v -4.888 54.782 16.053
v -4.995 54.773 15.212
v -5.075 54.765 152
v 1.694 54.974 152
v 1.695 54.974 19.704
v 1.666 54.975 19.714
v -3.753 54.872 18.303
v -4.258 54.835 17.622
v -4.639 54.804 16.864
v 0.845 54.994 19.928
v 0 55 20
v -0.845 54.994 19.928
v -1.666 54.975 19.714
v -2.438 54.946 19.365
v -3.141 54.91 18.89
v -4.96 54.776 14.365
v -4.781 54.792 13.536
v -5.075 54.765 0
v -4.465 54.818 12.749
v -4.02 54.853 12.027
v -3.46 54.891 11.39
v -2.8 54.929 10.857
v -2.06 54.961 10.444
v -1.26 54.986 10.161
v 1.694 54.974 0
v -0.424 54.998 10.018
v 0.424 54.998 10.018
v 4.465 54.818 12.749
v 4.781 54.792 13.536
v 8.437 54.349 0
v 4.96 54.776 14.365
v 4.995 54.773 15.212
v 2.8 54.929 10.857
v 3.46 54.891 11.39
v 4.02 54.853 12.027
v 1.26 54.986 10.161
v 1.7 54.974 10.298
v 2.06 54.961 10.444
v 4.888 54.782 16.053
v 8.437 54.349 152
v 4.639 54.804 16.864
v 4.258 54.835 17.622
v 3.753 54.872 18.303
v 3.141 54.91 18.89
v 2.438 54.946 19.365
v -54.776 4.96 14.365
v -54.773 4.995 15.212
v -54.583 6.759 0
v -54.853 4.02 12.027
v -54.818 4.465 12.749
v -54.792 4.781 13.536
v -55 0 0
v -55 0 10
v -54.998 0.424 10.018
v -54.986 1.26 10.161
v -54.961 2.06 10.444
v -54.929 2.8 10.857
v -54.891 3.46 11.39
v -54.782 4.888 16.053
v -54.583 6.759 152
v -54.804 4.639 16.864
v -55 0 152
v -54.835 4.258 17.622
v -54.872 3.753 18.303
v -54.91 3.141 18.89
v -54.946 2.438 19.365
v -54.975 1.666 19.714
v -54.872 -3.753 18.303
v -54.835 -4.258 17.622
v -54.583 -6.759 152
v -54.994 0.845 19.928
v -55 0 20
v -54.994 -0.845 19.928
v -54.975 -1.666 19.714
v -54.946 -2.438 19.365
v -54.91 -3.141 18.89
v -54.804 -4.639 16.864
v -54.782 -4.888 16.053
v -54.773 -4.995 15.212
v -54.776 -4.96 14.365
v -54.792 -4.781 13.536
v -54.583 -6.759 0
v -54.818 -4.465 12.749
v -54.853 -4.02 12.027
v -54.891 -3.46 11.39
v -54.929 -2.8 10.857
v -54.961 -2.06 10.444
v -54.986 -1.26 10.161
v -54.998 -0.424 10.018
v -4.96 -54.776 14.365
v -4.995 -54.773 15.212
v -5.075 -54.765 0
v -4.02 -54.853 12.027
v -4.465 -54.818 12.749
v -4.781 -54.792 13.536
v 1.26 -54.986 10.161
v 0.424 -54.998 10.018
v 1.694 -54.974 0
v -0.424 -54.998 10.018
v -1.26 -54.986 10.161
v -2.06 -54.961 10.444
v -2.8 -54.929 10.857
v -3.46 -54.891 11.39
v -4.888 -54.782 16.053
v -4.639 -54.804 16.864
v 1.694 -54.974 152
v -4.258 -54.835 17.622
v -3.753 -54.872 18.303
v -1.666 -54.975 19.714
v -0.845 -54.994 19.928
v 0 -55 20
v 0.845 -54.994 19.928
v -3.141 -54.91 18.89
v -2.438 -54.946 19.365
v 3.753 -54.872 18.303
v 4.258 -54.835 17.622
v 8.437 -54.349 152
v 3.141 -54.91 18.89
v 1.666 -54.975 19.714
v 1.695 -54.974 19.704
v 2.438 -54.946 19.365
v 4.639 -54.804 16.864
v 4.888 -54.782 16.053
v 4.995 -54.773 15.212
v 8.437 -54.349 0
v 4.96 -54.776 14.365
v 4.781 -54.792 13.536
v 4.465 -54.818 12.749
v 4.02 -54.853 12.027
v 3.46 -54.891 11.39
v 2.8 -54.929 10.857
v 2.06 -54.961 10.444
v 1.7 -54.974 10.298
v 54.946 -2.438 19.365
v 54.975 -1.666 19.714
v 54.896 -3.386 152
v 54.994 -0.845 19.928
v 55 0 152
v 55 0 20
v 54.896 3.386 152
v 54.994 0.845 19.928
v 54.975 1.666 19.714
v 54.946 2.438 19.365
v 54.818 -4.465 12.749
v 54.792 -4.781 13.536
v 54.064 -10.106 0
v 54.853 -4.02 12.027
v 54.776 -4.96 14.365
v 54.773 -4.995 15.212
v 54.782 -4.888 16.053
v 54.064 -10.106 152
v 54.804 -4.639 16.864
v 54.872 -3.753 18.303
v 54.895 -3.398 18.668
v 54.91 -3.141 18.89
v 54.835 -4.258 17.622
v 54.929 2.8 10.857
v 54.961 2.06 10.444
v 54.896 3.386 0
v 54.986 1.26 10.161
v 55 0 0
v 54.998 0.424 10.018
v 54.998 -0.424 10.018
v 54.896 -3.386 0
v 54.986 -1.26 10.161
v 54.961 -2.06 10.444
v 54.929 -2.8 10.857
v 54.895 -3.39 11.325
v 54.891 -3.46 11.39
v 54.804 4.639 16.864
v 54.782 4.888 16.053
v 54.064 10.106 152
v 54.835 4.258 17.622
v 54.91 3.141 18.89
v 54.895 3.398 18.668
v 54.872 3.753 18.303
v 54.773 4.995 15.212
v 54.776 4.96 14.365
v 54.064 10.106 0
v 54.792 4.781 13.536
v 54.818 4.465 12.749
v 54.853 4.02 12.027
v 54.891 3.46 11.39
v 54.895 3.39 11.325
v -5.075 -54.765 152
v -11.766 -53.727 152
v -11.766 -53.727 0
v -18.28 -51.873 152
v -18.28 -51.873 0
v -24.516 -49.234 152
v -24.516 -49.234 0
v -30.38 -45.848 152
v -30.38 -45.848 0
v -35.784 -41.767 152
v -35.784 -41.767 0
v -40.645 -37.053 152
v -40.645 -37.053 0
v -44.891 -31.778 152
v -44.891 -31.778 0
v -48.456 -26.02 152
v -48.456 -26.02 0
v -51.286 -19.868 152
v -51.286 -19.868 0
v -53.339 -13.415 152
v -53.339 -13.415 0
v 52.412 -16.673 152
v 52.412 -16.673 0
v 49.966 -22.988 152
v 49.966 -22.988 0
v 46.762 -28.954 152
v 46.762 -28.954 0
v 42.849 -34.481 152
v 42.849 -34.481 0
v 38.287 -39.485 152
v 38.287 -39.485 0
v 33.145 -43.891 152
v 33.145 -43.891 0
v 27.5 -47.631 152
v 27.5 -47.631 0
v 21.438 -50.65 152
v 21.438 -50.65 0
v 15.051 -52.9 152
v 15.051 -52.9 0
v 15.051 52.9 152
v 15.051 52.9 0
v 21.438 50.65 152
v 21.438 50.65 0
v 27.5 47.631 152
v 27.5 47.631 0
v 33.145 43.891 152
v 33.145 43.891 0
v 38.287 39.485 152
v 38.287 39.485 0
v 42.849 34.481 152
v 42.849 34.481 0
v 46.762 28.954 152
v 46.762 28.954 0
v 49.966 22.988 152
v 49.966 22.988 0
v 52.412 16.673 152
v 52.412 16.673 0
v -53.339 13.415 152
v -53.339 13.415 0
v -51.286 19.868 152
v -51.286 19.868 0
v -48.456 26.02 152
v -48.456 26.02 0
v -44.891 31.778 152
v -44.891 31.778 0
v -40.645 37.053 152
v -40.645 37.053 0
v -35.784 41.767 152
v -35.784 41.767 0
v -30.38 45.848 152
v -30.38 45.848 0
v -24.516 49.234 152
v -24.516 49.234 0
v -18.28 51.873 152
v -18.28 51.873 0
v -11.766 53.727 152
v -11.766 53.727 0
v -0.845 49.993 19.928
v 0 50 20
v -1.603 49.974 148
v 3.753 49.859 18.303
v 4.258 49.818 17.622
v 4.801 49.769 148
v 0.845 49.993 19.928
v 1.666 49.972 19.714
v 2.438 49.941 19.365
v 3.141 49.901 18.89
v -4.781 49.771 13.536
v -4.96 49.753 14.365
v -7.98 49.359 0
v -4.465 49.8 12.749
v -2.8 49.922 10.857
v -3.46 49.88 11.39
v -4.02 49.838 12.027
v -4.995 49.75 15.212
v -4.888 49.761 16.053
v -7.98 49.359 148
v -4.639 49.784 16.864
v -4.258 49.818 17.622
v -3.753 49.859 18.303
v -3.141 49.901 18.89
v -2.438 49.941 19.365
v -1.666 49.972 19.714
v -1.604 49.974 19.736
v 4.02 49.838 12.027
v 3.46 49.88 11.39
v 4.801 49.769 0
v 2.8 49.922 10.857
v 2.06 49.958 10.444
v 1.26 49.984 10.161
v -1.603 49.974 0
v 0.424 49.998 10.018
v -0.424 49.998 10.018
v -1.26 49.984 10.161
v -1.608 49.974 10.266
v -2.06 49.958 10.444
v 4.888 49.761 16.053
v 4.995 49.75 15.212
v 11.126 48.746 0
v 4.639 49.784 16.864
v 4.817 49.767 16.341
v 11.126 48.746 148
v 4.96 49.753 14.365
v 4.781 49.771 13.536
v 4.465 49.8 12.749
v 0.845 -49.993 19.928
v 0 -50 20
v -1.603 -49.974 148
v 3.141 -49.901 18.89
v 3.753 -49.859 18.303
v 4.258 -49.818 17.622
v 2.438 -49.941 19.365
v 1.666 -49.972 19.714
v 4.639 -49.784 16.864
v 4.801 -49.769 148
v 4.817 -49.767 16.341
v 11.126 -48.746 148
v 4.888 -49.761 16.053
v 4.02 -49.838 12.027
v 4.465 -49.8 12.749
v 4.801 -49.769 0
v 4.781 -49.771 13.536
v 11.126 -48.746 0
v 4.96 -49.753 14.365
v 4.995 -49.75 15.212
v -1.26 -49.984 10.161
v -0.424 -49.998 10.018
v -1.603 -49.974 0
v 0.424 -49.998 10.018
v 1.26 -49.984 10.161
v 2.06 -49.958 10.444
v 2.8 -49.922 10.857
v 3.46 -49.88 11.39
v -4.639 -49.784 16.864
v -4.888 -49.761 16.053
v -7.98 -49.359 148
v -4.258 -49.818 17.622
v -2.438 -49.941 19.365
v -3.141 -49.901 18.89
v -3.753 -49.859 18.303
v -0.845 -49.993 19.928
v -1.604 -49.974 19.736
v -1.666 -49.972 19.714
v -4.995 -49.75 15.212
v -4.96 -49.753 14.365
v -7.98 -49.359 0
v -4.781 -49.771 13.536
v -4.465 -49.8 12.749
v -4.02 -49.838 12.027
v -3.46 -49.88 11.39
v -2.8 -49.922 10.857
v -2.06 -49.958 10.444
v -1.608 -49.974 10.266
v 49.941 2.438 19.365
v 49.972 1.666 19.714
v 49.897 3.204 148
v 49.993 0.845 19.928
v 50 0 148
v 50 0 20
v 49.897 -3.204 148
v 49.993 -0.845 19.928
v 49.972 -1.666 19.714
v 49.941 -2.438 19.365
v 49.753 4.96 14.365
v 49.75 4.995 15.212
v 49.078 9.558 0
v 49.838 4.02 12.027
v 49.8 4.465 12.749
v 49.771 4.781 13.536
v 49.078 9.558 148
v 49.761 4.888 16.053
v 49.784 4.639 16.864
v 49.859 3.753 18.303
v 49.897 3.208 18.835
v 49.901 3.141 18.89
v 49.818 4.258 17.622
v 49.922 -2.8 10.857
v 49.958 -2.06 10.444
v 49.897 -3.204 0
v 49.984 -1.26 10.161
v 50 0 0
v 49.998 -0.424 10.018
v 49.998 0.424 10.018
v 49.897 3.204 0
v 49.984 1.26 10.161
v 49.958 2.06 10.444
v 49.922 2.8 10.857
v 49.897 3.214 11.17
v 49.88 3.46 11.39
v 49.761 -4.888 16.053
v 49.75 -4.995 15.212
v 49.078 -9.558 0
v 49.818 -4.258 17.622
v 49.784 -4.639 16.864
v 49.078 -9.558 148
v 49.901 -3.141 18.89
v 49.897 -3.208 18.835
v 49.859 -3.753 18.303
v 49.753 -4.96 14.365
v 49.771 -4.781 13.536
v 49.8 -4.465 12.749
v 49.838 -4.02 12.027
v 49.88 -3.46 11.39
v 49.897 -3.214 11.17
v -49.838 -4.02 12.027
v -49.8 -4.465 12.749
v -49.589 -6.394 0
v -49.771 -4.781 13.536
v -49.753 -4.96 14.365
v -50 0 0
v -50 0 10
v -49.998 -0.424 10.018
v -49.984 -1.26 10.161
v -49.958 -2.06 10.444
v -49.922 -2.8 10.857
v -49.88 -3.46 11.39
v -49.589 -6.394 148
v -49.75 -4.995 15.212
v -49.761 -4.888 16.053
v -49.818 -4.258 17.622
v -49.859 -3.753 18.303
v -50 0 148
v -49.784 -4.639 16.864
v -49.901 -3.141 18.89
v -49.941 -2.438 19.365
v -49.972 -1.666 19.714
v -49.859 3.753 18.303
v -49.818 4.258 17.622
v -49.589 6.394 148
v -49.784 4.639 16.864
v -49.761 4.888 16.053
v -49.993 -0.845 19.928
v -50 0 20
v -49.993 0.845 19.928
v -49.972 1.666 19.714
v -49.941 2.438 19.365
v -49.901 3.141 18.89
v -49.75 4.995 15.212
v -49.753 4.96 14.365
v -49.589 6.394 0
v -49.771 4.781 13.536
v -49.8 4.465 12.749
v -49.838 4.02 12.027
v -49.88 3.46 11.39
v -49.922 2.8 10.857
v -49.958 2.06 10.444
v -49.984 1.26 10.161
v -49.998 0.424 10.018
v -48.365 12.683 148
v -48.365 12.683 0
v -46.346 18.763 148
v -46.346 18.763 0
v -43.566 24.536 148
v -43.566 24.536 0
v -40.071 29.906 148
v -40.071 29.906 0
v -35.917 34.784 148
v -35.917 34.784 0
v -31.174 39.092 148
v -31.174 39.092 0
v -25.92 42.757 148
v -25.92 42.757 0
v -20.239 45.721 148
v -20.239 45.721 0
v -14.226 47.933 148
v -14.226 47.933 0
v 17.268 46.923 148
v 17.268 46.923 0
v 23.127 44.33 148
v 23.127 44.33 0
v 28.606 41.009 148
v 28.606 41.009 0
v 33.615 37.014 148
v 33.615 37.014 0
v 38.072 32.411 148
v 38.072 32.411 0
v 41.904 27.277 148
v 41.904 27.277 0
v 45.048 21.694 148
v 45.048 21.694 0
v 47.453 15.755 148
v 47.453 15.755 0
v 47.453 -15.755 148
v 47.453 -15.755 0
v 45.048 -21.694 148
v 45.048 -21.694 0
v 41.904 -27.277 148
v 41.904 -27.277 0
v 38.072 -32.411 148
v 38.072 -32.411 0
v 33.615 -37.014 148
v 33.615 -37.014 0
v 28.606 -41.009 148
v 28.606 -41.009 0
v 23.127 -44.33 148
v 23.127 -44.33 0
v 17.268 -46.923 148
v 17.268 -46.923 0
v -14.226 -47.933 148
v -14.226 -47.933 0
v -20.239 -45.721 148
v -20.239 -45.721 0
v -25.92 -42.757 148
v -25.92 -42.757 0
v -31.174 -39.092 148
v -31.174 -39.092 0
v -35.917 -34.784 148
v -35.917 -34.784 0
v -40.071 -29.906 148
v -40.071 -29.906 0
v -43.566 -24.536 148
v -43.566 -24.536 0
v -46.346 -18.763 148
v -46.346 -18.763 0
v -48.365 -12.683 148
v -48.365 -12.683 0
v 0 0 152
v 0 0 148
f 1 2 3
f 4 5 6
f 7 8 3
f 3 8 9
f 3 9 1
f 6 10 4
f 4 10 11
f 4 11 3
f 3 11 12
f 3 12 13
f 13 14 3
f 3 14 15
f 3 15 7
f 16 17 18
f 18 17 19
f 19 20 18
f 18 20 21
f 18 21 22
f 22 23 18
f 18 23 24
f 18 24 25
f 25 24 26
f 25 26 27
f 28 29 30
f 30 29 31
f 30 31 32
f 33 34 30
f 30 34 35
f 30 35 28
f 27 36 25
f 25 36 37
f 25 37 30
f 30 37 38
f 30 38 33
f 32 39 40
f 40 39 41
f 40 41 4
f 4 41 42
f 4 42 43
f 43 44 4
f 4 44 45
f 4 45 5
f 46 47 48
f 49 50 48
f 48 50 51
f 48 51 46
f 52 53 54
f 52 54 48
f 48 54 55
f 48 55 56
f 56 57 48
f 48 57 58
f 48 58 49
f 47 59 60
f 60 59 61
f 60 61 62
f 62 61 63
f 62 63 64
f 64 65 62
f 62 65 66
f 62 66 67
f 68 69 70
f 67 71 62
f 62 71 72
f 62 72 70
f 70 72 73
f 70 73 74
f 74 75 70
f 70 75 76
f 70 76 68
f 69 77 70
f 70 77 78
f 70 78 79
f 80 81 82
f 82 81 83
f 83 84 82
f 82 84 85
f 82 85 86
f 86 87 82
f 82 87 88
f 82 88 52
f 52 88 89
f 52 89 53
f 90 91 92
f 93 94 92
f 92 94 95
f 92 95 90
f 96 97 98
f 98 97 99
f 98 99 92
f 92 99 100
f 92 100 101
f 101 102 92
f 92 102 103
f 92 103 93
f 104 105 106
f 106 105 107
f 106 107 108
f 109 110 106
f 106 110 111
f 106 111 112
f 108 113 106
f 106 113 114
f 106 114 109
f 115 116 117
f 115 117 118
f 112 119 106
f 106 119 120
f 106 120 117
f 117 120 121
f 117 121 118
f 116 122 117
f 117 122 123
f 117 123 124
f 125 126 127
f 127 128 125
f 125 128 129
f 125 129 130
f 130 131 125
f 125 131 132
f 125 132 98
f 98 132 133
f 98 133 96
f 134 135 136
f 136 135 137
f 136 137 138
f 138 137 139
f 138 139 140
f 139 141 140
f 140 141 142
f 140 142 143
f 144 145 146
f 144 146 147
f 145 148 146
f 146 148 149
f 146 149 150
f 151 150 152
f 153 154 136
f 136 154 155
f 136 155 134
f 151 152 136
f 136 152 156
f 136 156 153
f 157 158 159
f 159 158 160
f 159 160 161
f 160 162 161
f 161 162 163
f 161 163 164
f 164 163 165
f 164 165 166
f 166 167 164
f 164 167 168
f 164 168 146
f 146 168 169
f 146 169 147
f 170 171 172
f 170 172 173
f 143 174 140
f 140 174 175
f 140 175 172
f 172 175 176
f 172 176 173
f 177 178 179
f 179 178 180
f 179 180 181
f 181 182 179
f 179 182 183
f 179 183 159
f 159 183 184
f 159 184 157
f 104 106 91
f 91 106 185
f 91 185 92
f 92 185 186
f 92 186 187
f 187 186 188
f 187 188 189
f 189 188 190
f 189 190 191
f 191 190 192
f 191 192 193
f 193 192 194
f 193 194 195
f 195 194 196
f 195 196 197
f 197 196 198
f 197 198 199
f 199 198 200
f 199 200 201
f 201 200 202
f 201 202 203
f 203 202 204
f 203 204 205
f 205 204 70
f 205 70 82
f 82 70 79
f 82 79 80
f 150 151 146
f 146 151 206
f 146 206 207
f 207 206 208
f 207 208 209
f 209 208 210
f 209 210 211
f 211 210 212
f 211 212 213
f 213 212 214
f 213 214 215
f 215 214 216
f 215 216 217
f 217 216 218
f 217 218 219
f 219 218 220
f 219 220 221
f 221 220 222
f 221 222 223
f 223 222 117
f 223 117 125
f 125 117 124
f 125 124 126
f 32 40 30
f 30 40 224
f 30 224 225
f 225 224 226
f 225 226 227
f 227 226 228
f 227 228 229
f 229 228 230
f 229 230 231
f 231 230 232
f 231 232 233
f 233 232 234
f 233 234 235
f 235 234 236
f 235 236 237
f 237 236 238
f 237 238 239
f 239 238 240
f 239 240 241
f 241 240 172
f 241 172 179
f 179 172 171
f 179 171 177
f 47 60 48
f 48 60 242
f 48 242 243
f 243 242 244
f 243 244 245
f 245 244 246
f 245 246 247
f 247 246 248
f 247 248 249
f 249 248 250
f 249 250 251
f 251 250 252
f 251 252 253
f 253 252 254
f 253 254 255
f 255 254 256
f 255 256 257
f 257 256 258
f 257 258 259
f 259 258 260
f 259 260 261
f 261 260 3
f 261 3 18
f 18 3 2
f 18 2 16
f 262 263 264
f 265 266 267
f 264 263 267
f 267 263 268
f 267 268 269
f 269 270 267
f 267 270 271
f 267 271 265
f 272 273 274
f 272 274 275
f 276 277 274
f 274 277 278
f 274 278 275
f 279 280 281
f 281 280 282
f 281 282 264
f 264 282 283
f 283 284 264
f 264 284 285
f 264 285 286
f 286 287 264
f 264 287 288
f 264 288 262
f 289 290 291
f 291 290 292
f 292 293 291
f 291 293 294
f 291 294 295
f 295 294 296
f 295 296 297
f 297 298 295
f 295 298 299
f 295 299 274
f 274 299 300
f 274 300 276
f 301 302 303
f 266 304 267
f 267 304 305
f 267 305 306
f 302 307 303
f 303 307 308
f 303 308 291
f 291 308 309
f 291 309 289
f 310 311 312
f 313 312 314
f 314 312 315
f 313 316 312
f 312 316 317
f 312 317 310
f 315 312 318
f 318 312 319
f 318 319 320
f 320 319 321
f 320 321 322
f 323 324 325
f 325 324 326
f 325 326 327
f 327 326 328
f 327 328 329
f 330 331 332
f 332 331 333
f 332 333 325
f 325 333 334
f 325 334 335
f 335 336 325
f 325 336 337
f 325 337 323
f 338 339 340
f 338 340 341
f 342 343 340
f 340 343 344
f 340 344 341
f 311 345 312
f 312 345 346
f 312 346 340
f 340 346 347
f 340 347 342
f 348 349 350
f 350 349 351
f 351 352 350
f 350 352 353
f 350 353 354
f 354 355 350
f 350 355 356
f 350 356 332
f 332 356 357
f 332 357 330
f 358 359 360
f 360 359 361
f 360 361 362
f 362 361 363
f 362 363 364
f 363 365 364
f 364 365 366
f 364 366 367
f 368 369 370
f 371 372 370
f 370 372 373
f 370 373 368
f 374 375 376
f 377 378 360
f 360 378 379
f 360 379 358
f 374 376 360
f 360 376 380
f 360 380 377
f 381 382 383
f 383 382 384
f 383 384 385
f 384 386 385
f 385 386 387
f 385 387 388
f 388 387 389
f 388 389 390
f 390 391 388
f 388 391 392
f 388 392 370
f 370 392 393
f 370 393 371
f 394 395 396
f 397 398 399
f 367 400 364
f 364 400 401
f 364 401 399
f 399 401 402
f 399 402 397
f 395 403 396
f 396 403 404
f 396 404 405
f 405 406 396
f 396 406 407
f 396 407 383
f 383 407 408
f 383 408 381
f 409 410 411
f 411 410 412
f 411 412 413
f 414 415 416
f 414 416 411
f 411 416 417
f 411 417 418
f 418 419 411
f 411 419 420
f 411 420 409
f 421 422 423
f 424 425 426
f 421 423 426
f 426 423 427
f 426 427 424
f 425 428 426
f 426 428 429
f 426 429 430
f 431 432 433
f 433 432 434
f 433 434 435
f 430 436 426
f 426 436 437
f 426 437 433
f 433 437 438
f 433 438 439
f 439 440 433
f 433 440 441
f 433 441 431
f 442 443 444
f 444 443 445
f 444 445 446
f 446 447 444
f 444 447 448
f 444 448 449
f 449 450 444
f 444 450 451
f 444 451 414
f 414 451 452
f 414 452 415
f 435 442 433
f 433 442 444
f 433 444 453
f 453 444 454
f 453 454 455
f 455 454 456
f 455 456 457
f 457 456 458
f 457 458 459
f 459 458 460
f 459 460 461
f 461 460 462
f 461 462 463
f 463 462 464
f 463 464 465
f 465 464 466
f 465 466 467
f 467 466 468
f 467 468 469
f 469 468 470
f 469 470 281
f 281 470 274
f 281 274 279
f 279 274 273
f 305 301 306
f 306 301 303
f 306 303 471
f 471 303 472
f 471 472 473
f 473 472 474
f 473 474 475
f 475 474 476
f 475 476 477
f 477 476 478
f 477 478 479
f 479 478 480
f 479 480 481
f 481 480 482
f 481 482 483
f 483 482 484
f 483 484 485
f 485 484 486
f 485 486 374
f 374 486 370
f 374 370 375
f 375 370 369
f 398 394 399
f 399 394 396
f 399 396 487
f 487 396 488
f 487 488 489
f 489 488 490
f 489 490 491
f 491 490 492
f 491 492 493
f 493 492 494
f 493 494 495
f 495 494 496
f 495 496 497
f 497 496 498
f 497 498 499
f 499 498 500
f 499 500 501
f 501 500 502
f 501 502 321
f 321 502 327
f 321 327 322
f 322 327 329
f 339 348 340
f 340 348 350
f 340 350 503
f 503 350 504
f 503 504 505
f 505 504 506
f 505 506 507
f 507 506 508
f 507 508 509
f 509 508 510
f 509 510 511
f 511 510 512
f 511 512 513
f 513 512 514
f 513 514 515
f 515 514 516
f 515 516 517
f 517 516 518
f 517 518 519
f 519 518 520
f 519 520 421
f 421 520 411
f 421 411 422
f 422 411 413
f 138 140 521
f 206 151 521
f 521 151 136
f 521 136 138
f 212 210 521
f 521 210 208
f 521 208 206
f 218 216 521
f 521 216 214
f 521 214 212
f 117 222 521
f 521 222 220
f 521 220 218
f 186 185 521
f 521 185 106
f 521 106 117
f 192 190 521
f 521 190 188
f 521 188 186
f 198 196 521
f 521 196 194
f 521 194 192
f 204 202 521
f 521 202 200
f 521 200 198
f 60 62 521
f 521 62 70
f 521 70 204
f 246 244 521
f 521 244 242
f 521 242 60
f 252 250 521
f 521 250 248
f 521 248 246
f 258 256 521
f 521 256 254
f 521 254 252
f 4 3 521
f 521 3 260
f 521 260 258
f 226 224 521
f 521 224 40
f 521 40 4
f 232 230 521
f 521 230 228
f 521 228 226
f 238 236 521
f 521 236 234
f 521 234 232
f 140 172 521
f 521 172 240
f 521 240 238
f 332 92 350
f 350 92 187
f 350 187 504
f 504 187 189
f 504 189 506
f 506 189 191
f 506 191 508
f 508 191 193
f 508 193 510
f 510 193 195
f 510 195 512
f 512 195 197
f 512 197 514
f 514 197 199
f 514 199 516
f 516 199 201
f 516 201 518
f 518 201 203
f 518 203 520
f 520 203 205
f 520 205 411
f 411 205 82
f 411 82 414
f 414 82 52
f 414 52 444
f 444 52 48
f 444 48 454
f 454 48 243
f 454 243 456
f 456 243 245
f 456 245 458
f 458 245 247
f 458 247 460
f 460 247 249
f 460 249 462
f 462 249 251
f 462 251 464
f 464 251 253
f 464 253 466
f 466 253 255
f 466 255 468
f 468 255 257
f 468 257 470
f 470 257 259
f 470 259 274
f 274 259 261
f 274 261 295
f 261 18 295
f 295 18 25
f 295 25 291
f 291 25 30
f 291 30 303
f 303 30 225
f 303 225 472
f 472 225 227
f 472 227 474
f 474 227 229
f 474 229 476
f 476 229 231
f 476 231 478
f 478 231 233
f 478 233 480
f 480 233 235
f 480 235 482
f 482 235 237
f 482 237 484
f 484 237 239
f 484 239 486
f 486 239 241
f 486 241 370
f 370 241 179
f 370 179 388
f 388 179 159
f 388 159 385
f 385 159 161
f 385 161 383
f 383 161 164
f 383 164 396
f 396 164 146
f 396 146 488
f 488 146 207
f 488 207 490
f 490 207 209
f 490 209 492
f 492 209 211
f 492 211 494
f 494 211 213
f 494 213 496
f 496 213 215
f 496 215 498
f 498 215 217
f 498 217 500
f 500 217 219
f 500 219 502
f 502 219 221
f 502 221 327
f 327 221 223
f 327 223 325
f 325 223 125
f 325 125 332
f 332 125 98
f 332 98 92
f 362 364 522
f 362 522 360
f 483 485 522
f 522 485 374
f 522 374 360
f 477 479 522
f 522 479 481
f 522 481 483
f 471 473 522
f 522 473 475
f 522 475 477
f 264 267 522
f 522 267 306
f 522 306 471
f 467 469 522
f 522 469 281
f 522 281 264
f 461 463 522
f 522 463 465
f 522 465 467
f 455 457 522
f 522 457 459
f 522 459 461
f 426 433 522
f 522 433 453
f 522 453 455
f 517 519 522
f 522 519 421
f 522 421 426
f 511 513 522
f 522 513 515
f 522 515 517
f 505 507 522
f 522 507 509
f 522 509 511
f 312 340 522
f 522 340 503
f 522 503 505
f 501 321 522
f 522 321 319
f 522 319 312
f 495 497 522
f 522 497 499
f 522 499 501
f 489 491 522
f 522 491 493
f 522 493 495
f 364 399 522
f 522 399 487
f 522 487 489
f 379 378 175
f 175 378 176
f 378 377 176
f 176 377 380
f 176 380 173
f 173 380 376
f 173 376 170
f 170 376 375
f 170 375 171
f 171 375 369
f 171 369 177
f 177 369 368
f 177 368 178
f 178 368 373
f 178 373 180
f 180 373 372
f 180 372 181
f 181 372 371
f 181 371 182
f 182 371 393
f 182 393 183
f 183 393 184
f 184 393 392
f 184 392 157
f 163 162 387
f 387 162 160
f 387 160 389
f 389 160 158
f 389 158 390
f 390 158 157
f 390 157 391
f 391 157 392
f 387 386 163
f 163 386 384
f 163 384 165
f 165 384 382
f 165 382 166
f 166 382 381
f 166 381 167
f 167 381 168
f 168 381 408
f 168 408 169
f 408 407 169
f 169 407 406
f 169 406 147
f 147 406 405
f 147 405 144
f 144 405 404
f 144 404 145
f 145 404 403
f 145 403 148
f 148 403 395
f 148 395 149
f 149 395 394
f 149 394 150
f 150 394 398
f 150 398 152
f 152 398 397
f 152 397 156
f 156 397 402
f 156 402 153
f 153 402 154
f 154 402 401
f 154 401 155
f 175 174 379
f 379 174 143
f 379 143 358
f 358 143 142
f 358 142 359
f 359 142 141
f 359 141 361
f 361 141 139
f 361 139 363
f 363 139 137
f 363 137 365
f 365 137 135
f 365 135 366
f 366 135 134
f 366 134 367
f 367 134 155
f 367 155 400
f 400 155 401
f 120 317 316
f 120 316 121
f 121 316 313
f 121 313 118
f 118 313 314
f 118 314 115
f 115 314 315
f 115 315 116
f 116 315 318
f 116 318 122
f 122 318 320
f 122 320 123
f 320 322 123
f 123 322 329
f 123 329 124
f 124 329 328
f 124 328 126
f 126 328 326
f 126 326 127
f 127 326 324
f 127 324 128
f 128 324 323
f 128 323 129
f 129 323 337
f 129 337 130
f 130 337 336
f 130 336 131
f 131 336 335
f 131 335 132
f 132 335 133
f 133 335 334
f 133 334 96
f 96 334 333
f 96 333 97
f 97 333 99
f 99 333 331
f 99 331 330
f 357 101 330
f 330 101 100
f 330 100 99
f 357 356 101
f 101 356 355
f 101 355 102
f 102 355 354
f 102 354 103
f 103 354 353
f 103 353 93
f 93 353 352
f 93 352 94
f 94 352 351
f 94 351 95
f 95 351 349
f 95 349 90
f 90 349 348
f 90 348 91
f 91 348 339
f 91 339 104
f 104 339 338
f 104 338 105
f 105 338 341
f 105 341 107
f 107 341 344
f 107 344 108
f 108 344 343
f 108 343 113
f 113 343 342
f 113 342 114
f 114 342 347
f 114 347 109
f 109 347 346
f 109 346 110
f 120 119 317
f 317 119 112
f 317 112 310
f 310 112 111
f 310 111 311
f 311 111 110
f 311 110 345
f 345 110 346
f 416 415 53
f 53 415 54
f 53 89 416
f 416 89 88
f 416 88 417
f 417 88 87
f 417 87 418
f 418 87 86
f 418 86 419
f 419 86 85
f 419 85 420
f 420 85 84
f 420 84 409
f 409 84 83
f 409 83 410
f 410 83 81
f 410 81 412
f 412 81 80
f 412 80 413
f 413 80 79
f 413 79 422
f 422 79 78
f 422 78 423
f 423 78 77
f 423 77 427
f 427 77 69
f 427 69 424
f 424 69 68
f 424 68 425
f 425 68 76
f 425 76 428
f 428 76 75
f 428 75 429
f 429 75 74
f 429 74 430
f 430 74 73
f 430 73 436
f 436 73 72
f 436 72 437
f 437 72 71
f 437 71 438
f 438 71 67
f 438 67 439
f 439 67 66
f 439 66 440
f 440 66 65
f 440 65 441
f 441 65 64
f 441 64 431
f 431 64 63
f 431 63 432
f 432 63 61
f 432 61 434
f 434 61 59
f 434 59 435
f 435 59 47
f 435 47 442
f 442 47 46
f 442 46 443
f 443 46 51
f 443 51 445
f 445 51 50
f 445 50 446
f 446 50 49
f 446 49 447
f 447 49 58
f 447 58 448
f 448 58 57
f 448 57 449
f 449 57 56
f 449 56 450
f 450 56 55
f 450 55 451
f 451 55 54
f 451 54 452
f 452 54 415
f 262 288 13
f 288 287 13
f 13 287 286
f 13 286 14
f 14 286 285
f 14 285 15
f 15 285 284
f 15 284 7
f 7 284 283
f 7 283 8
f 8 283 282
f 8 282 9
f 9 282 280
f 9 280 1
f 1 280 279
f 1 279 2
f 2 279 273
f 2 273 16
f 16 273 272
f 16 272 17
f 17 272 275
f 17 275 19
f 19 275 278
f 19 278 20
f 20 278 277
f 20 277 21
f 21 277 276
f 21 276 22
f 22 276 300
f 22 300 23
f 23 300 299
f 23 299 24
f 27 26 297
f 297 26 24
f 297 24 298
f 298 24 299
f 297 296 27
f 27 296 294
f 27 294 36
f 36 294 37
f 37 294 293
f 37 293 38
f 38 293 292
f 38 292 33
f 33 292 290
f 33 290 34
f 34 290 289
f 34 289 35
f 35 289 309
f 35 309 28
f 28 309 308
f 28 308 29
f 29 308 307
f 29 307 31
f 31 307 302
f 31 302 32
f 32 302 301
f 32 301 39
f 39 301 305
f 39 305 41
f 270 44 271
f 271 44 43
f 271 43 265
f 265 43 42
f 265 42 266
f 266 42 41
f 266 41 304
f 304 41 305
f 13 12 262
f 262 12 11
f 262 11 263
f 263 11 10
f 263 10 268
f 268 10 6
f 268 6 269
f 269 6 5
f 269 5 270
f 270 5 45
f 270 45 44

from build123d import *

# Parameters (mm, degrees)
SKETCH1_R    = 55
CUP_DEPTH    = 152
SKETCH2_R    = 50
CAVITY_DEPTH = 148
SKETCH3_R    = 5
VENT_DEPTH   = 6
VENTS_COUNT  = 4


with BuildPart() as part:
    # Sketch1 → Cup (new body)
    with BuildSketch(Plane.XY):
        Circle(SKETCH1_R)
    extrude(amount=CUP_DEPTH)

    # Sketch2 → Cavity (cut)
    with BuildSketch(Plane.XY):
        Circle(SKETCH2_R)
    extrude(amount=CAVITY_DEPTH, mode=Mode.SUBTRACT)

    # Sketch3 → Vent (cut)
    with BuildSketch(Plane(origin=(49.5, 0, 0), x_dir=(0, 0, -1), z_dir=(1, 0, 0))):
        with Locations(Location((-15, 0, 0), (0, 0, 180))):
            Circle(SKETCH3_R)
    vent = extrude(amount=VENT_DEPTH, mode=Mode.SUBTRACT)

    # Vents: Vent ×4 about axis
    vents_axis = Axis((0, 0, -7.6), (0, 0, 1))
    for i in range(1, VENTS_COUNT):
        add(vent.rotate(vents_axis, i * 360 / VENTS_COUNT), mode=Mode.SUBTRACT)


solid = part.part
